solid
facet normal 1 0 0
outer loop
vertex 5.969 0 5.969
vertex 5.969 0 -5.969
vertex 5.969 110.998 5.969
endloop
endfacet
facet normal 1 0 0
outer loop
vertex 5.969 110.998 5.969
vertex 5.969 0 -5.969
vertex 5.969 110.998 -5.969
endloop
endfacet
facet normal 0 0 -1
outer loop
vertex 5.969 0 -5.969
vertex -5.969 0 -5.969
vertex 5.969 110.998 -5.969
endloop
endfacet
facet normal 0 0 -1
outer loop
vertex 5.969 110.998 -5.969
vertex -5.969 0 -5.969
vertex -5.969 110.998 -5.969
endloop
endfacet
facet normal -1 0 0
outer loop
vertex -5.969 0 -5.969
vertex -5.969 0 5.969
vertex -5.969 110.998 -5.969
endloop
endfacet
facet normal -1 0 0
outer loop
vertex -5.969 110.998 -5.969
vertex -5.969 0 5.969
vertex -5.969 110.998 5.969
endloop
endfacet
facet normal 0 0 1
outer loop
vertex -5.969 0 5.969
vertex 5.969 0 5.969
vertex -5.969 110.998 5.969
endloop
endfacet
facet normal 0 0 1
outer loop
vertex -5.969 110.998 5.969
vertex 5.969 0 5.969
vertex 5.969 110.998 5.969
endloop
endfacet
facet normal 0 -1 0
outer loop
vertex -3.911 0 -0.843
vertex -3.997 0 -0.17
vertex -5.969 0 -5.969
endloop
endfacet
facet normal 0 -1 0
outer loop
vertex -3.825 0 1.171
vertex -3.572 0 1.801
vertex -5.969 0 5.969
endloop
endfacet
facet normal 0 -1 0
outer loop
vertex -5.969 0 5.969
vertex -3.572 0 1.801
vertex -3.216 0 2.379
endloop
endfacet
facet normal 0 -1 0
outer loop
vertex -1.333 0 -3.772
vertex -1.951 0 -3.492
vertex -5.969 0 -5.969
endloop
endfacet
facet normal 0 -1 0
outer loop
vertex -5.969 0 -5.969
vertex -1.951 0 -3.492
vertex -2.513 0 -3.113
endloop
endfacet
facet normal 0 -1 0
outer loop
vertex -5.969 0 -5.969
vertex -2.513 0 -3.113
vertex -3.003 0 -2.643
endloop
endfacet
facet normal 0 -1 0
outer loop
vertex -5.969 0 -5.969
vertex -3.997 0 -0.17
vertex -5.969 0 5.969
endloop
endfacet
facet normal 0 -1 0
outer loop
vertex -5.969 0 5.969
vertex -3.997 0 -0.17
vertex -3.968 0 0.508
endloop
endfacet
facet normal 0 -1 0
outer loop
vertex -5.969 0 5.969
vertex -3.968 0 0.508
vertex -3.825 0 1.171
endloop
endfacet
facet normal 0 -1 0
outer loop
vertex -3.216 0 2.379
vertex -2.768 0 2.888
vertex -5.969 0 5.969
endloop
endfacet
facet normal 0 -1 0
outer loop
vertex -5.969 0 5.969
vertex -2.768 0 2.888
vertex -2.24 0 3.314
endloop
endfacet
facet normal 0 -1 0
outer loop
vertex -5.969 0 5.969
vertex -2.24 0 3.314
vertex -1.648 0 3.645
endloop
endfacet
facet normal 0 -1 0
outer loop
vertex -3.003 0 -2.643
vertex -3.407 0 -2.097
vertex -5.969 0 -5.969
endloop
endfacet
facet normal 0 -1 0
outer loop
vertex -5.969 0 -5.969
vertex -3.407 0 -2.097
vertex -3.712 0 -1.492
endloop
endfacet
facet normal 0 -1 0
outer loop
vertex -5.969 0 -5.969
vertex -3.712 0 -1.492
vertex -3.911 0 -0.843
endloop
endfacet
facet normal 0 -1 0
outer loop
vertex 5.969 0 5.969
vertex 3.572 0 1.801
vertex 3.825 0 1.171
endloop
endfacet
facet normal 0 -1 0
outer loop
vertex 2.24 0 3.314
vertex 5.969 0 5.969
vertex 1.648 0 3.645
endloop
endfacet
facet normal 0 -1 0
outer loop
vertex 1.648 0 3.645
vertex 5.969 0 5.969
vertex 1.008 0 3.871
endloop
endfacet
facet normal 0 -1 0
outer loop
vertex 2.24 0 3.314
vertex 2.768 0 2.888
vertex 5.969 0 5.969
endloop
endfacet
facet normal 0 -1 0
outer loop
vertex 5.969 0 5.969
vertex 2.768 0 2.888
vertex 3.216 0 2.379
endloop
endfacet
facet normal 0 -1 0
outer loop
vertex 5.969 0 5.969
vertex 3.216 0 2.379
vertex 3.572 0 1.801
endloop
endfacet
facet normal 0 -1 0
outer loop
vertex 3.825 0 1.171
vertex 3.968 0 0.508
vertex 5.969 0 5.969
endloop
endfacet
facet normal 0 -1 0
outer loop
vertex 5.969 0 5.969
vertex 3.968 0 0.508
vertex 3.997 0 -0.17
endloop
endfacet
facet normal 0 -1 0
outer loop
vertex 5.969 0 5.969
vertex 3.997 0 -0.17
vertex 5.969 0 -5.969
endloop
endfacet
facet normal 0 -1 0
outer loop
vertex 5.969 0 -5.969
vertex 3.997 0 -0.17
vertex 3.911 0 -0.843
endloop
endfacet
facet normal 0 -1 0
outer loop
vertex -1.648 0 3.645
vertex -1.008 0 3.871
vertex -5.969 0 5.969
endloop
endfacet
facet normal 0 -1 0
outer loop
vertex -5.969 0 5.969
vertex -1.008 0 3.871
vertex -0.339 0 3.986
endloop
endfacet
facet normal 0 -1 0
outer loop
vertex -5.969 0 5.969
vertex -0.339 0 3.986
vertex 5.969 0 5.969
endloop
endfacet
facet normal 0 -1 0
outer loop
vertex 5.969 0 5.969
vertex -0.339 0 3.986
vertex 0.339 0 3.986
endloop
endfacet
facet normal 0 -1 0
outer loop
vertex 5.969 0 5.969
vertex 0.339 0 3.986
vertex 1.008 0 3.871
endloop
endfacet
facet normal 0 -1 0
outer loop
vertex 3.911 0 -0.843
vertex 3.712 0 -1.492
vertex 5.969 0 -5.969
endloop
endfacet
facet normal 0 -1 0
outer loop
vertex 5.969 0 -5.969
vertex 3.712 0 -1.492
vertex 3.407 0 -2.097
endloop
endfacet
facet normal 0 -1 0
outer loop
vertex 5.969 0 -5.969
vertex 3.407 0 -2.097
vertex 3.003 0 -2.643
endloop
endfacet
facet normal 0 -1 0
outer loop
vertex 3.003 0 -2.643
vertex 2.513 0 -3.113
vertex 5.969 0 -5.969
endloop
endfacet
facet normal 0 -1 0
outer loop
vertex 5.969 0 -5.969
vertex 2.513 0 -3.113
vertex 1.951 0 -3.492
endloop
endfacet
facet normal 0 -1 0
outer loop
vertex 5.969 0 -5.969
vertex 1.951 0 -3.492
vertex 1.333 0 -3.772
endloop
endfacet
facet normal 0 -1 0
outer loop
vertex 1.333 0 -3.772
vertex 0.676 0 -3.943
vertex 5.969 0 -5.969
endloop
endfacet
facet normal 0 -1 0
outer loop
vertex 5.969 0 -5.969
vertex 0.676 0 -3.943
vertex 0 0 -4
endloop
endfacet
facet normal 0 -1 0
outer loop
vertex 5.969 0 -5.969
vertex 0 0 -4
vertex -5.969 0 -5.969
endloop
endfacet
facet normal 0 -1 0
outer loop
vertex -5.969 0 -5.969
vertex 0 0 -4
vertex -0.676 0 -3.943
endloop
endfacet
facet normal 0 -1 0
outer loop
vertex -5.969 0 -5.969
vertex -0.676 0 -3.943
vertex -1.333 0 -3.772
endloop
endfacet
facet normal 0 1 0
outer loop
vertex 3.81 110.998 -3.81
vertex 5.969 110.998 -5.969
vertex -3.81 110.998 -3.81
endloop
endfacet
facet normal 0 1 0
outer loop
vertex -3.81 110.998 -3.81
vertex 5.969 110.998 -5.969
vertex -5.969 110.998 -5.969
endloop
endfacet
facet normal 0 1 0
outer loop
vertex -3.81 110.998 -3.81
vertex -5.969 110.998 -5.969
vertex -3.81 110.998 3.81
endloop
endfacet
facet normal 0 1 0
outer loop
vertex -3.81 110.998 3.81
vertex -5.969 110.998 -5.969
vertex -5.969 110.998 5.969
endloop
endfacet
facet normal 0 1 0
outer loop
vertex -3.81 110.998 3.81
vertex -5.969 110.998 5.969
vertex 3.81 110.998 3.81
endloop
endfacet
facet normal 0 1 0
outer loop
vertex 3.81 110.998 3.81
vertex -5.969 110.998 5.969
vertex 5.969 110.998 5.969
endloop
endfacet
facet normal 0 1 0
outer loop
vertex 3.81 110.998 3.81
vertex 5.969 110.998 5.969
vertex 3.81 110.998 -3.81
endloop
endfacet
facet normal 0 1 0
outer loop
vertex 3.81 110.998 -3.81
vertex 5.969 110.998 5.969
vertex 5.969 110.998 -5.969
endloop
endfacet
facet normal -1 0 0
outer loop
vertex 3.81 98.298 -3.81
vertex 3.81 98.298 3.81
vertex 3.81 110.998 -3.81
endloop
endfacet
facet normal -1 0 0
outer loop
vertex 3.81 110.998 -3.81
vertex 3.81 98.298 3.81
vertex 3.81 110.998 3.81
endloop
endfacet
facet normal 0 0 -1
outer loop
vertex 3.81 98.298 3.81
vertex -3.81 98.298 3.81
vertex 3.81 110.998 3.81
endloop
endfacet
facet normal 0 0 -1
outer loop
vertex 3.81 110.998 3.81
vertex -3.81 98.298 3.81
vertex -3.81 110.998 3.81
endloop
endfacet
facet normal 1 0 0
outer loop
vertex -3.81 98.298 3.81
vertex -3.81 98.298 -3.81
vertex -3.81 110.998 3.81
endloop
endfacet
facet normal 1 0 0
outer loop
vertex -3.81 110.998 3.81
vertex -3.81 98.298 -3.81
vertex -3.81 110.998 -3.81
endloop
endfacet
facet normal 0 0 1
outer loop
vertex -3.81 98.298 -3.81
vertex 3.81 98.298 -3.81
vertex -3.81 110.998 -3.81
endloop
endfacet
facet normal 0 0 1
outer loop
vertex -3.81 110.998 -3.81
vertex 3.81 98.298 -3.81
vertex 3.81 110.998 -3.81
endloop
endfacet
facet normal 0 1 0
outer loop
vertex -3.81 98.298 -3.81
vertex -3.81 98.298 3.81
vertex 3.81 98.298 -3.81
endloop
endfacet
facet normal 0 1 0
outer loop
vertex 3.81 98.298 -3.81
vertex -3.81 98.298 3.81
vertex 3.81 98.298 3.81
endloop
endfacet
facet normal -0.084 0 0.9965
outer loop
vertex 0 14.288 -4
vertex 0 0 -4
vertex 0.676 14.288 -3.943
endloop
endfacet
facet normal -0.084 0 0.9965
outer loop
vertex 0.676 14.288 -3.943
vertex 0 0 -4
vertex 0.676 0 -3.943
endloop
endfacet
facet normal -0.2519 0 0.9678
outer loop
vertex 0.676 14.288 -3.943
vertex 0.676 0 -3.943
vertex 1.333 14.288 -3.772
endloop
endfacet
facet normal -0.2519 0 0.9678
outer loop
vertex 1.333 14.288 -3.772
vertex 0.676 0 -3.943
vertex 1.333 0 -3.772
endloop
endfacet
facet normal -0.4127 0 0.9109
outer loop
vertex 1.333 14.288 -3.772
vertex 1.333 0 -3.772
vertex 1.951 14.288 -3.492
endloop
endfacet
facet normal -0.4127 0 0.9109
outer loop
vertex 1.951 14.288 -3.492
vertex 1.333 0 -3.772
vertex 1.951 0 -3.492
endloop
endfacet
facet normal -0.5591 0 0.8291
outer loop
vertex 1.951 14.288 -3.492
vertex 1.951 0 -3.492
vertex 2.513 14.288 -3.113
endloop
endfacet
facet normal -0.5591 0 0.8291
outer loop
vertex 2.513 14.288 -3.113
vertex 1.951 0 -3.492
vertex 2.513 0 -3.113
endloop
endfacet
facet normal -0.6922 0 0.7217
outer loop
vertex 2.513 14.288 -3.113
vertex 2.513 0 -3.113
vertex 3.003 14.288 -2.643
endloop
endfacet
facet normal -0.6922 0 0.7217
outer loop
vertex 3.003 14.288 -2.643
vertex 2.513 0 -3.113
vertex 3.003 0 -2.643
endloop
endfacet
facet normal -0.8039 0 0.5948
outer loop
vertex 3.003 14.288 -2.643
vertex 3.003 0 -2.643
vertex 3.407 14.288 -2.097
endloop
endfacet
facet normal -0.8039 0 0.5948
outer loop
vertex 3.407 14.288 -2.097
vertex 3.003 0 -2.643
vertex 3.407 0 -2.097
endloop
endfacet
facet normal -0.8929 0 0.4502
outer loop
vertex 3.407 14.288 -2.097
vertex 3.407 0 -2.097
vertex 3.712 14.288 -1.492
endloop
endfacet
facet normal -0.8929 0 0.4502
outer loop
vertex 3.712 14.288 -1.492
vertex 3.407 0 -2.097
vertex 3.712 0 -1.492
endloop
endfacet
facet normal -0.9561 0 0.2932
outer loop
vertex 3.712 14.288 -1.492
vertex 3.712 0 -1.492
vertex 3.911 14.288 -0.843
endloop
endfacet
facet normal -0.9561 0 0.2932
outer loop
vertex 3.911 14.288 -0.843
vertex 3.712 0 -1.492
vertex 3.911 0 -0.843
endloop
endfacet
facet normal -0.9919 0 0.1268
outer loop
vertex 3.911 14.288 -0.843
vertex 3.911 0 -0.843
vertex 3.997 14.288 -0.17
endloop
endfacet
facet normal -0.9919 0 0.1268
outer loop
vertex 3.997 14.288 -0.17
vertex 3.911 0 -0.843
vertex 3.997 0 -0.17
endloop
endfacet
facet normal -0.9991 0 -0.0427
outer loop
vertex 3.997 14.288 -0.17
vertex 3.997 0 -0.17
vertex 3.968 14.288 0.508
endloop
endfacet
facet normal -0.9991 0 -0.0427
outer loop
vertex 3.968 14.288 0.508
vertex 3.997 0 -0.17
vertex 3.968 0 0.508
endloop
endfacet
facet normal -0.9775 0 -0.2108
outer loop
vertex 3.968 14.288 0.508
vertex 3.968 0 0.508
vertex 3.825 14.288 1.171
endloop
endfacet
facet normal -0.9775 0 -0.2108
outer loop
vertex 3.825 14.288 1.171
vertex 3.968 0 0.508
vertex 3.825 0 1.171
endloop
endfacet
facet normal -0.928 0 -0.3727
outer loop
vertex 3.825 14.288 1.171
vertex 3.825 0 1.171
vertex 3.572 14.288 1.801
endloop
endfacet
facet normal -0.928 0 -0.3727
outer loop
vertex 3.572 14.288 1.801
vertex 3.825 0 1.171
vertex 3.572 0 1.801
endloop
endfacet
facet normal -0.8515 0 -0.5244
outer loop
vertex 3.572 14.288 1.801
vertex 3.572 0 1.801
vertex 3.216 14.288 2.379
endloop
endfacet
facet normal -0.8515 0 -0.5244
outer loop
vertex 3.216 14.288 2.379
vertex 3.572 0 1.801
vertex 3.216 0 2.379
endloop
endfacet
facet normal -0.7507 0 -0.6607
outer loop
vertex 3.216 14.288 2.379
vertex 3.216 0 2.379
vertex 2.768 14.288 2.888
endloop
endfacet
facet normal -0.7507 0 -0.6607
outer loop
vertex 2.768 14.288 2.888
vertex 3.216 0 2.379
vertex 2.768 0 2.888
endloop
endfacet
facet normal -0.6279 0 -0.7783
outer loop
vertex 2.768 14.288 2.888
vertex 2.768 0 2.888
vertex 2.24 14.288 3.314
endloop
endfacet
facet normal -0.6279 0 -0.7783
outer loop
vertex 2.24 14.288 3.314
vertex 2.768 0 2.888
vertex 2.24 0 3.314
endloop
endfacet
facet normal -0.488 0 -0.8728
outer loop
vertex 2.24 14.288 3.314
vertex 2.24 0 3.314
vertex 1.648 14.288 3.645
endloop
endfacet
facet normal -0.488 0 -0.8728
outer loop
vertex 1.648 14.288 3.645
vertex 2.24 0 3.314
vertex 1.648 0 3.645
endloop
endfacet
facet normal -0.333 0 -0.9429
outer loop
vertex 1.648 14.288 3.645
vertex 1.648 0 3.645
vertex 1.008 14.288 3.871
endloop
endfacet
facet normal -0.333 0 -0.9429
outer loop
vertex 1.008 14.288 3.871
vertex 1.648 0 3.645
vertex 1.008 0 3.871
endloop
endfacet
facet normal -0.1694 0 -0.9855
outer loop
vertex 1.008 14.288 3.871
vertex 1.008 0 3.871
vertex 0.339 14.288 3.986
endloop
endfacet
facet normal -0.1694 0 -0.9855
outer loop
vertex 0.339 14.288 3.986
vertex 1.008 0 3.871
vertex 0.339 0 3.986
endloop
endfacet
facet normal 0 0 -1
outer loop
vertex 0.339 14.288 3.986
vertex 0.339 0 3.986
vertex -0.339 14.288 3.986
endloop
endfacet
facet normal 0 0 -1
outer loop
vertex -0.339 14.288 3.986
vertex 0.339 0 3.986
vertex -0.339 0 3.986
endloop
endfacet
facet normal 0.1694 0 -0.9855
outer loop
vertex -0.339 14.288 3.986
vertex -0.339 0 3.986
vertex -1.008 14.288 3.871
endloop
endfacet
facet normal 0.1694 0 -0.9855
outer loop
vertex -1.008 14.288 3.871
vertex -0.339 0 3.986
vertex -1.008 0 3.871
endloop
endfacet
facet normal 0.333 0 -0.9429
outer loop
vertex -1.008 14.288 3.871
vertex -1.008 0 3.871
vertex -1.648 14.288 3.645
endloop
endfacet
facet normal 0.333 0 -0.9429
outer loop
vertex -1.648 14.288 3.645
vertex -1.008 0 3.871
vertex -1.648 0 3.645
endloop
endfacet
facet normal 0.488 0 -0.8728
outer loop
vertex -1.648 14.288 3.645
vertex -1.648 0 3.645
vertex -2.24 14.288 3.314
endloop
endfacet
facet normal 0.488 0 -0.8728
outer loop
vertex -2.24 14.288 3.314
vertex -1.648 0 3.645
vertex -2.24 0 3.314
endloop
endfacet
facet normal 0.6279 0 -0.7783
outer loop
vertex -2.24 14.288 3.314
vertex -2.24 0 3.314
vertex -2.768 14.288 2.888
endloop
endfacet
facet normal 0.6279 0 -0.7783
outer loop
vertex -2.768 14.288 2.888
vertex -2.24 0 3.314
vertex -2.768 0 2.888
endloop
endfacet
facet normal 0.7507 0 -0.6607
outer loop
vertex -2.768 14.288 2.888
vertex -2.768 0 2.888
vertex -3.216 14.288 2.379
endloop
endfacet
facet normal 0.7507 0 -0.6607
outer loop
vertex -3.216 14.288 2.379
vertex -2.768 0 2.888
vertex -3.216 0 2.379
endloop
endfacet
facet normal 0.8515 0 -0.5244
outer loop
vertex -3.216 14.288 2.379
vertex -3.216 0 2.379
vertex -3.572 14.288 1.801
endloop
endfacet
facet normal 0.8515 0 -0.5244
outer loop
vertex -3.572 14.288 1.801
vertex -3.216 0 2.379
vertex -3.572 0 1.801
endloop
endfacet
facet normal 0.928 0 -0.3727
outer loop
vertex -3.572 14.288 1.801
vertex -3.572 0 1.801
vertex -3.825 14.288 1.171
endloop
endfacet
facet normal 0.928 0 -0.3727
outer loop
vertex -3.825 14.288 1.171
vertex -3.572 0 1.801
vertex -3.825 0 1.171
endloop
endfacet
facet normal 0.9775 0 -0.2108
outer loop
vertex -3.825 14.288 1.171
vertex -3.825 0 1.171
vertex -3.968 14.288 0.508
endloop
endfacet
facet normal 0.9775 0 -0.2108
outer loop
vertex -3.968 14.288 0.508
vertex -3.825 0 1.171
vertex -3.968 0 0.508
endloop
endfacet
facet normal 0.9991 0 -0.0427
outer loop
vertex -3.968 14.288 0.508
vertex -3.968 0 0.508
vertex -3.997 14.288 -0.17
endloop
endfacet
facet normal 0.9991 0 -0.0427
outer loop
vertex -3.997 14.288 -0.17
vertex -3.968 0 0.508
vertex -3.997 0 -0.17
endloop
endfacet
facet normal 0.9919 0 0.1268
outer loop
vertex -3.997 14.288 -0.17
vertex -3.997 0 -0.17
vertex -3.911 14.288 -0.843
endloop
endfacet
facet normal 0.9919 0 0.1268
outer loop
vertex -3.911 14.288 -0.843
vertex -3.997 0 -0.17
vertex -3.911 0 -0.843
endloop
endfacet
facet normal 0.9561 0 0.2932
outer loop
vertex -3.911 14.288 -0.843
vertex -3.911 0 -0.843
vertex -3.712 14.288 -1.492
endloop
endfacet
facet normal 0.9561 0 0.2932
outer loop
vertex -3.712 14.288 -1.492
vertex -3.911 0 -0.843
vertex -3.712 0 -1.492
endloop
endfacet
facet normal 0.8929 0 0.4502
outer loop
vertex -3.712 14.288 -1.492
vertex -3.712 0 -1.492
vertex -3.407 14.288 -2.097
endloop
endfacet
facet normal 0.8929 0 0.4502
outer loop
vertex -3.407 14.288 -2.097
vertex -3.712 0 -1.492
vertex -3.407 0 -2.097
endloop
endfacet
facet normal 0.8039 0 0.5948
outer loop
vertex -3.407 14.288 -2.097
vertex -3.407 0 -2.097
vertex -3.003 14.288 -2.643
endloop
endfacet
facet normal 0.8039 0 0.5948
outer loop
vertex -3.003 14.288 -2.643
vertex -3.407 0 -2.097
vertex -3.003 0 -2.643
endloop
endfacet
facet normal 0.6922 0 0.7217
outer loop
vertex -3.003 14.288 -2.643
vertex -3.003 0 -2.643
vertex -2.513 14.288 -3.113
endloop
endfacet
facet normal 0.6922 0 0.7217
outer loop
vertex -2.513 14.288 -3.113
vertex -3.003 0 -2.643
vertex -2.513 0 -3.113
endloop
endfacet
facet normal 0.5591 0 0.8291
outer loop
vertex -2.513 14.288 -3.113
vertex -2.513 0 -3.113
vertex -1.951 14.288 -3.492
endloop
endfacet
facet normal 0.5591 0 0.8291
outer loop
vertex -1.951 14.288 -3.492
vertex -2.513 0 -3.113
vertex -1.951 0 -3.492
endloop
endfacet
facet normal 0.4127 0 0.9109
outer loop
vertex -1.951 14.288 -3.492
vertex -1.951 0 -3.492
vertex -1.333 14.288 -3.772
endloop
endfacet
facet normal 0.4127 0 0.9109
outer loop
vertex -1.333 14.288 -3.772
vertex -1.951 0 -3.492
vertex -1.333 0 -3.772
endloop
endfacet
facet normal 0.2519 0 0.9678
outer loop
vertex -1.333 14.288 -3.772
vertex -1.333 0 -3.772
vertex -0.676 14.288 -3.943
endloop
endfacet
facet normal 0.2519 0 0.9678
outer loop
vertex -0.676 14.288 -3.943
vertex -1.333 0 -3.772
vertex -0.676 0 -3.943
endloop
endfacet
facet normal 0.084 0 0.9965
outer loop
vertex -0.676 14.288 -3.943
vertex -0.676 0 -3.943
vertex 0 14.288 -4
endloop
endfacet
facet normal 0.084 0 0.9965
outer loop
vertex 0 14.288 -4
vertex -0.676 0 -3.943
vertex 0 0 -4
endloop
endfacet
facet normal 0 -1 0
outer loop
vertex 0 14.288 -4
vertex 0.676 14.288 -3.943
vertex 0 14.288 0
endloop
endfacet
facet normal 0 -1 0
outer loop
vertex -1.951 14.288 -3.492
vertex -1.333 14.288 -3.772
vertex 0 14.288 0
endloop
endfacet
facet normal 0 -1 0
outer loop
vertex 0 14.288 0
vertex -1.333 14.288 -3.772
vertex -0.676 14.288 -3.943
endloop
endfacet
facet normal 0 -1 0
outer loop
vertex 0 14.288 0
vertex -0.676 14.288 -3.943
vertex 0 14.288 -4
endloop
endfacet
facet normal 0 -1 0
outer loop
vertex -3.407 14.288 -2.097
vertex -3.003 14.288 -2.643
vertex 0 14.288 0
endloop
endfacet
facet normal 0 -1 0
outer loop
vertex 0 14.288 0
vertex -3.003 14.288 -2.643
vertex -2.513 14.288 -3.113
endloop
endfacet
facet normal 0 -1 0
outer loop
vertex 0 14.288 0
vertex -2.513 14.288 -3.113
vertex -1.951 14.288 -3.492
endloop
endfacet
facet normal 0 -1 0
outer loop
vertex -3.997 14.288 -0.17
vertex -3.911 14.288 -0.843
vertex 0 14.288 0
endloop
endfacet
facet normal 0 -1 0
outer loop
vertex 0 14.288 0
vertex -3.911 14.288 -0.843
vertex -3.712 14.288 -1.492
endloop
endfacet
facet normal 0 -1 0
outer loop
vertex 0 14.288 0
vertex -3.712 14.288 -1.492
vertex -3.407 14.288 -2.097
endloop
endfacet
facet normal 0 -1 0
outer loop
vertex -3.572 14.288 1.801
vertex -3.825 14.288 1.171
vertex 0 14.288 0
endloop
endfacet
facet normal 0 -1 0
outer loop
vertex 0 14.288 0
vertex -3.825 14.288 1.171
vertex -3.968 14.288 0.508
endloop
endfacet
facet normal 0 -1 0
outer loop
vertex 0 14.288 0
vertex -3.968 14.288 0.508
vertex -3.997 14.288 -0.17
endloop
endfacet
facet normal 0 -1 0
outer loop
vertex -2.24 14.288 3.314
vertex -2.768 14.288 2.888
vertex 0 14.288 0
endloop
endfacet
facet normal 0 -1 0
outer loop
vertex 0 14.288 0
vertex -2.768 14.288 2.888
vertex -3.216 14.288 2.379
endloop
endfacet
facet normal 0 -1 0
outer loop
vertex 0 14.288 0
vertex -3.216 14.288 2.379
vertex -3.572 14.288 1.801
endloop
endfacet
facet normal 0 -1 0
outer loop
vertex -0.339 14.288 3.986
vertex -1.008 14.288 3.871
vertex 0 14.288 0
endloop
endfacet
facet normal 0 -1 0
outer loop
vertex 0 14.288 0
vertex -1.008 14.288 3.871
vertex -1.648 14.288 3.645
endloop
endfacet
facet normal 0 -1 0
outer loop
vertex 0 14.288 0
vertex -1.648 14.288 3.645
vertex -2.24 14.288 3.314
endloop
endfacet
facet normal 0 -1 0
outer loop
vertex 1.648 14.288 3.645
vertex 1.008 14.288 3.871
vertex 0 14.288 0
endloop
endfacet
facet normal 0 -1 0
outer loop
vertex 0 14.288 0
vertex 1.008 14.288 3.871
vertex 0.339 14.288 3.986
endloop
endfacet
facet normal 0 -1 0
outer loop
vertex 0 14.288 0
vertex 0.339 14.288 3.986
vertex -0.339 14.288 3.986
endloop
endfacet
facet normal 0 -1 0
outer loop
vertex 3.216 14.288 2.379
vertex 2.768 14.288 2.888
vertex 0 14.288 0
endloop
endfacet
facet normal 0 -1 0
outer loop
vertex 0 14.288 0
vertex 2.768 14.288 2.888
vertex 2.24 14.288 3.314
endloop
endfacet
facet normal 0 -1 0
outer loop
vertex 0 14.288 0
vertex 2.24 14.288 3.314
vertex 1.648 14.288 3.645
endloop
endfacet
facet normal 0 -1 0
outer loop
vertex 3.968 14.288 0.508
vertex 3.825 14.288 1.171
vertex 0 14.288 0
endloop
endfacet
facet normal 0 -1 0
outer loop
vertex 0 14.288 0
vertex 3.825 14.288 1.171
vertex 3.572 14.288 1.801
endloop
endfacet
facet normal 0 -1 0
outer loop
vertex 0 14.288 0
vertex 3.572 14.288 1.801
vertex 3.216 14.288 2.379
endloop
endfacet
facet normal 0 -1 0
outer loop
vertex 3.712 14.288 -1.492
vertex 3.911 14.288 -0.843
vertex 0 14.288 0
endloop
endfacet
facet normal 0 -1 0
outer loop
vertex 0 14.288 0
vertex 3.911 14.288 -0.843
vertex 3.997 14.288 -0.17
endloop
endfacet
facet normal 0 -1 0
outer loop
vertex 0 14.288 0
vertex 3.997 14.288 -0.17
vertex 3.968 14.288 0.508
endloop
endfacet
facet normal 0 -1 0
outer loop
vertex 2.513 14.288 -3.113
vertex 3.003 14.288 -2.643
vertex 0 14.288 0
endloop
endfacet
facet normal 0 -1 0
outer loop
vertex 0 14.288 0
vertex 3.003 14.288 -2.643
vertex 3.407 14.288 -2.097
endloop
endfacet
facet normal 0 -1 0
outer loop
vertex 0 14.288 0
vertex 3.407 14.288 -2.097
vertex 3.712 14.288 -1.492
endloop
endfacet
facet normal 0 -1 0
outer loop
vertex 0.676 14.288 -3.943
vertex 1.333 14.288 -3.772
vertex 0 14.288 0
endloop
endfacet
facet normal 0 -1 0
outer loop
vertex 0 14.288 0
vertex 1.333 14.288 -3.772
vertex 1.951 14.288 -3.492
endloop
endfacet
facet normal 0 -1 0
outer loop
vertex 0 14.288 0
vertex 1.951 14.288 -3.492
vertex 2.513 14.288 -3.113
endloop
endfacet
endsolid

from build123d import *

# Parameters (mm, degrees)
SKETCH1_W           = 11.938
SKETCH1_H           = 11.938
BOSS_EXTRUDE1_DEPTH = 213.106
SKETCH2_R           = 3.68046
BOSS_EXTRUDE2_DEPTH = 22.225
SKETCH4_W           = 4.572
SKETCH4_H           = 4.572
BOSS_EXTRUDE4_DEPTH = 15.24
SKETCH5_R           = 13.051144527
CUT_EXTRUDE1_DEPTH  = 139.573
SKETCH6_W           = 7.62
SKETCH6_H           = 7.62
CUT_EXTRUDE2_DEPTH  = 12.7
SKETCH3_R           = 4.0005
CUT_EXTRUDE4_DEPTH  = 14.2875


with BuildPart() as part:
    # Sketch1 → Boss-Extrude1 (new body)
    with BuildSketch(Plane(origin=(0, 0, 0), x_dir=(1, 0, 0), z_dir=(0, 1, 0))):
        Rectangle(SKETCH1_W, SKETCH1_H)
    extrude(amount=BOSS_EXTRUDE1_DEPTH)

    # Sketch2 → Boss-Extrude2 (add)
    with BuildSketch(Plane(origin=(0, 213.106, 0), x_dir=(1, 0, 0), z_dir=(0, 1, 0))):
        Circle(SKETCH2_R)
    extrude(amount=BOSS_EXTRUDE2_DEPTH)

    # Sketch4 → Boss-Extrude4 (add)
    with BuildSketch(Plane(origin=(0, 235.331, 0), x_dir=(1, 0, 0), z_dir=(0, 1, 0))):
        Rectangle(SKETCH4_W, SKETCH4_H)
    extrude(amount=BOSS_EXTRUDE4_DEPTH)

    # Sketch5 → Cut-Extrude1 (cut)
    with BuildSketch(Plane(origin=(0, 250.571, 0), x_dir=(1, 0, 0), z_dir=(0, 1, 0))):
        Circle(SKETCH5_R)
    extrude(amount=-CUT_EXTRUDE1_DEPTH, mode=Mode.SUBTRACT)

    # Sketch6 → Cut-Extrude2 (cut)
    with BuildSketch(Plane(origin=(0, 110.998, 0), x_dir=(1, 0, 0), z_dir=(0, 1, 0))):
        Rectangle(SKETCH6_W, SKETCH6_H)
    extrude(amount=-CUT_EXTRUDE2_DEPTH, mode=Mode.SUBTRACT)

    # Sketch3 → Cut-Extrude4 (cut)
    with BuildSketch(Plane(origin=(0, 0, 0), x_dir=(-1, 0, 0), z_dir=(0, -1, 0))):
        Circle(SKETCH3_R)
    extrude(amount=-CUT_EXTRUDE4_DEPTH, mode=Mode.SUBTRACT)


solid = part.part
